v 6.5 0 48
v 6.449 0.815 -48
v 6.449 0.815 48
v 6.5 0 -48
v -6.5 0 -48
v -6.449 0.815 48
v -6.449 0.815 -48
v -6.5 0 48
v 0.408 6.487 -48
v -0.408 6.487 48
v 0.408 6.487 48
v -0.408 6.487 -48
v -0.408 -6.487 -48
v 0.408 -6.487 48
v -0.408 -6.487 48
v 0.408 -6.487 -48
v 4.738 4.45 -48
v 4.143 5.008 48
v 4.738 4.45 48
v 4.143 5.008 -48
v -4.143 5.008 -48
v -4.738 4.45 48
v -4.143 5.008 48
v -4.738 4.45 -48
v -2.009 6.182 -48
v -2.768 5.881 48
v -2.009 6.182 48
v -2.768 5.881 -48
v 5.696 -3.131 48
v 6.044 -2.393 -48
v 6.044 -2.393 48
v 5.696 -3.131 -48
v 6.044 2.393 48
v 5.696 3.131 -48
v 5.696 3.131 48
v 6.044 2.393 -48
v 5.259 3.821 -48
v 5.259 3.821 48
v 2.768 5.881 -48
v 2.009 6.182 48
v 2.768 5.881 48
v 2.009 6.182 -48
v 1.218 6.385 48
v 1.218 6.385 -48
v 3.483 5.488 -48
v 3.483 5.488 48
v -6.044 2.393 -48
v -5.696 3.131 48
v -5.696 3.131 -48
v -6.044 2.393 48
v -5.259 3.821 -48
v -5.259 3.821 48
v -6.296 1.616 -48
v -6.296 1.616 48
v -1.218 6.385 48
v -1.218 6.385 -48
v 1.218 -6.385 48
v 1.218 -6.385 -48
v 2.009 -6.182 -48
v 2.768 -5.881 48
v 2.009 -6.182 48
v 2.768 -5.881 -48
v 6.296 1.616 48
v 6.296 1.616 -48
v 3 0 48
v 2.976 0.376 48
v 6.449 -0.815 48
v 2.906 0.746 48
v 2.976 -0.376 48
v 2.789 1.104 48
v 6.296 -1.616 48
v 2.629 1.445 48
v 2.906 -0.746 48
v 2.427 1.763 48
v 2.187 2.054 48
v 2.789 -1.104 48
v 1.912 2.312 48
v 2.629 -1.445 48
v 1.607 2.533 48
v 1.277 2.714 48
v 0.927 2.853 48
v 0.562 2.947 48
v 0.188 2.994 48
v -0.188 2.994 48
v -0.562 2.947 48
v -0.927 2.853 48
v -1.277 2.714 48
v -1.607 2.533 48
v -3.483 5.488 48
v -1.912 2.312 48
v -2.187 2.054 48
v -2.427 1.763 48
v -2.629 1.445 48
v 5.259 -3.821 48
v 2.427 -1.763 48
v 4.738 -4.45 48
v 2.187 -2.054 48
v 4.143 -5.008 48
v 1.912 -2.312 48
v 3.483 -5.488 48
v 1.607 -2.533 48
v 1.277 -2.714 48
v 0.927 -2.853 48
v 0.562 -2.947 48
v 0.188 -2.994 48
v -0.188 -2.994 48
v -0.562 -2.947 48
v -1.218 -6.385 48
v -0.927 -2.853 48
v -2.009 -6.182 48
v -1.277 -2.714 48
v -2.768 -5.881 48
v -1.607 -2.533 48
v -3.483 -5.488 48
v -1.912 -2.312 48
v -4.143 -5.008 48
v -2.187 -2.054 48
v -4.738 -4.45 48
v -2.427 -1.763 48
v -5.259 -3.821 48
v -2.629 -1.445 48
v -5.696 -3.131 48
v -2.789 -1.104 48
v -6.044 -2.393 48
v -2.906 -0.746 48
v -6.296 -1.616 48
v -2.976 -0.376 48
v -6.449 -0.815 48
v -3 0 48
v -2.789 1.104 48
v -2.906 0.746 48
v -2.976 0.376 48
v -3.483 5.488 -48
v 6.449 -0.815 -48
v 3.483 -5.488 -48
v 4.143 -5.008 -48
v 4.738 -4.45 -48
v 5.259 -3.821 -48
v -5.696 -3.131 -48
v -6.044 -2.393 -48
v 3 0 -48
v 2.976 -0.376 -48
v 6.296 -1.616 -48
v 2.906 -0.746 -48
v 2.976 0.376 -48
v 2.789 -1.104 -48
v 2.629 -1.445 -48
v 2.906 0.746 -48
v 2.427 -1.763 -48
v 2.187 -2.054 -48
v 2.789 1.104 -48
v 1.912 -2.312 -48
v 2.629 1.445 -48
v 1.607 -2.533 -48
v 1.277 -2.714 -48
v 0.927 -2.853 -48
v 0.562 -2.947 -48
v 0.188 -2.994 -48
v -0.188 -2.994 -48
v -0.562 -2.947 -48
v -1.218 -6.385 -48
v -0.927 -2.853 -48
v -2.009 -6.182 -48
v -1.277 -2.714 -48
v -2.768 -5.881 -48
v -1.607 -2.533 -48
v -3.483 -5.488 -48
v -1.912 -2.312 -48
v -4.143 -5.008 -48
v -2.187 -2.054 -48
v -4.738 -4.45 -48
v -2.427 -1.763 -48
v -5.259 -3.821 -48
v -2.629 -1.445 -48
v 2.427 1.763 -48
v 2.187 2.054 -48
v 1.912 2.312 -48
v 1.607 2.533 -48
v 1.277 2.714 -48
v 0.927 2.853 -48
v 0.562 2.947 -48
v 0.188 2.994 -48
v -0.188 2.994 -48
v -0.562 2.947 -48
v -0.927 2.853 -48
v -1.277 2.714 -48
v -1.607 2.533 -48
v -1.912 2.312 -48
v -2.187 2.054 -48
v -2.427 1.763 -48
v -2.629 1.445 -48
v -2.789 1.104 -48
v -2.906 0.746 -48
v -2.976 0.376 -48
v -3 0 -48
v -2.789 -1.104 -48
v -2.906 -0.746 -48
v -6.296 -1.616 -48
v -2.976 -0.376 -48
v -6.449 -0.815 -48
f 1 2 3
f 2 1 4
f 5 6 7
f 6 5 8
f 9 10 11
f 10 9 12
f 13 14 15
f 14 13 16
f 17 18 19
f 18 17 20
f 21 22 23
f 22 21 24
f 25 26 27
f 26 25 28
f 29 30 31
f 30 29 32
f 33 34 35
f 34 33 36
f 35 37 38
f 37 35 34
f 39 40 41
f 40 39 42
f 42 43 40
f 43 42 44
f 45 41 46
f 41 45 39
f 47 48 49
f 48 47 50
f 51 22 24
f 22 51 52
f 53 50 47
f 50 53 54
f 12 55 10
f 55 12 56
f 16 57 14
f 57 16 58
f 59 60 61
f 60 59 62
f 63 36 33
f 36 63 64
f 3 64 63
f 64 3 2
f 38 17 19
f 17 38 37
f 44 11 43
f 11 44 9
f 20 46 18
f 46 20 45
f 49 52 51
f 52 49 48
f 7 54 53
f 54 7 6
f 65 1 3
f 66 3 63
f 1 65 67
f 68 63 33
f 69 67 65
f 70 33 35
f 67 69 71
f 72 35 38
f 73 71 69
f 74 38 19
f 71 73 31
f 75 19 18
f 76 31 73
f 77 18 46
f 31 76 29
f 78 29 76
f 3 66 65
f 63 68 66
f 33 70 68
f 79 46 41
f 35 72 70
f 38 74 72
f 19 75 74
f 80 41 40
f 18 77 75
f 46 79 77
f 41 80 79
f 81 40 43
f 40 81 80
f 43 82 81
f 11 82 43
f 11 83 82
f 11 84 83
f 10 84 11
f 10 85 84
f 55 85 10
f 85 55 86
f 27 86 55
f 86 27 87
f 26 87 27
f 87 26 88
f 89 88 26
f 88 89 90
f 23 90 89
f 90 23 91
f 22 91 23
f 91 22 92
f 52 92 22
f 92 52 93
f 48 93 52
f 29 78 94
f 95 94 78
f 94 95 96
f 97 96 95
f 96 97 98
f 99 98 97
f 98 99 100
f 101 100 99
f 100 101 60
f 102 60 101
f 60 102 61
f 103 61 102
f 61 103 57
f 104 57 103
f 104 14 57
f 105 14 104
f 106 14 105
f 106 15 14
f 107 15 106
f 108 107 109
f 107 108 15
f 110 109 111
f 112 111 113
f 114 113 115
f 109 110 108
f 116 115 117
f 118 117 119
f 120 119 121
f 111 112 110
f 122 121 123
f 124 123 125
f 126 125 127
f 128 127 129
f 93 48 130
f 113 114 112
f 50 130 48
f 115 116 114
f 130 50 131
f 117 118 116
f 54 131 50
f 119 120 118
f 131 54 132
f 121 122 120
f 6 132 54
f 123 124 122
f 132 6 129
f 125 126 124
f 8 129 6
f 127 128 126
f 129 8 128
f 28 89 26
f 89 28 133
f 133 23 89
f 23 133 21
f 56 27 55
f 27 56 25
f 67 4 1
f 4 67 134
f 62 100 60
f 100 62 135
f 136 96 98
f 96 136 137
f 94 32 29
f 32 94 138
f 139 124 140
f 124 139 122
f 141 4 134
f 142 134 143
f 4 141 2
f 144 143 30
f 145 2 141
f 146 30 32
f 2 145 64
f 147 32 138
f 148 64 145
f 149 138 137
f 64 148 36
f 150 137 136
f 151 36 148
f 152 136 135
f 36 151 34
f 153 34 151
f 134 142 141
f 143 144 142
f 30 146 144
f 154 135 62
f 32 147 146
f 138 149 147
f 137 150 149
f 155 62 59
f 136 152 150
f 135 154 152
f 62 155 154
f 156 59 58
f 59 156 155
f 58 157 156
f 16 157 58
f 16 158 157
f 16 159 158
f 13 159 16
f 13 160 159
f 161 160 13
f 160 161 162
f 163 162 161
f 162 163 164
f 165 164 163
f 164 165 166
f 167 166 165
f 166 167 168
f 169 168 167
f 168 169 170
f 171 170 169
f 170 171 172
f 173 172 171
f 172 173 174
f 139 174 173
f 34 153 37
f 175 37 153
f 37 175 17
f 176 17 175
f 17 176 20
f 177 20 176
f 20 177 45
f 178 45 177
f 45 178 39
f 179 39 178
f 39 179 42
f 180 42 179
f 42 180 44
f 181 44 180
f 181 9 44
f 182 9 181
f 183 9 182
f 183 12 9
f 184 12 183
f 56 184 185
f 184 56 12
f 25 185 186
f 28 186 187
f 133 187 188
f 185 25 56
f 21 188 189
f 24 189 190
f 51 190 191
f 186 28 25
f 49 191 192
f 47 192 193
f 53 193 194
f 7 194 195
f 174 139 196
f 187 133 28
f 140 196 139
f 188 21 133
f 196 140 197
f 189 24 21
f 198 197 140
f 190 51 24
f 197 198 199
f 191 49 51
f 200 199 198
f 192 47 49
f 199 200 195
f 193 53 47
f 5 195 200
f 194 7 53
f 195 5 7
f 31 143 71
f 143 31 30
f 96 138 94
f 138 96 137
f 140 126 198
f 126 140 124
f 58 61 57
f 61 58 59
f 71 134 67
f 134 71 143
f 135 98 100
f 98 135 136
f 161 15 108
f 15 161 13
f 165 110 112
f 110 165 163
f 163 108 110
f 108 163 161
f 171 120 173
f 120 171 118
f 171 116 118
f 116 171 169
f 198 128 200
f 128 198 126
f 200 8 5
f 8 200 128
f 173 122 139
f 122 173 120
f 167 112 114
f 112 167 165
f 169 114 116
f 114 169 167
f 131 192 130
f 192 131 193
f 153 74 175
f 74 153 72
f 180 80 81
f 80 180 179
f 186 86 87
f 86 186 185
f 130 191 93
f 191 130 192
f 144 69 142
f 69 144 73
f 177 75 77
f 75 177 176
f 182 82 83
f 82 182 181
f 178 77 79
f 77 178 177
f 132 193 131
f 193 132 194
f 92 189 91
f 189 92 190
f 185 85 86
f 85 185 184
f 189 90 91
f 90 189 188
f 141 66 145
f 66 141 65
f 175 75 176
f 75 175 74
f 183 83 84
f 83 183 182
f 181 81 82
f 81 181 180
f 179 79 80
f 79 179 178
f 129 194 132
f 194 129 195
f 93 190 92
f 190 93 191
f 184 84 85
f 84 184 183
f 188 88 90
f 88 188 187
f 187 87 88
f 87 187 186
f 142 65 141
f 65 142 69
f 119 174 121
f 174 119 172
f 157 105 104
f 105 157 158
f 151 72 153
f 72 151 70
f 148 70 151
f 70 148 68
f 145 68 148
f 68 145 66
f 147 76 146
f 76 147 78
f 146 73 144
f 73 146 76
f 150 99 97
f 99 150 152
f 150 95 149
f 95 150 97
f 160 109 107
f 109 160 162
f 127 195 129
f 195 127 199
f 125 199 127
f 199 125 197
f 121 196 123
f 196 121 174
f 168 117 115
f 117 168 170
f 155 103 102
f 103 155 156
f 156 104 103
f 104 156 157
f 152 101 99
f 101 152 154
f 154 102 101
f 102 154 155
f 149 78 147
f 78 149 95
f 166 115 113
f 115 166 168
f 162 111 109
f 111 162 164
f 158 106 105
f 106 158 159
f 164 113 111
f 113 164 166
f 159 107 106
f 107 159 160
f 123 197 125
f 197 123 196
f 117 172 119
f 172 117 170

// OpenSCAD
$fn = 50;


difference() {
	union() {
		translate(v = [0, 0, -48.0000000000]) {
			cylinder(h = 96, r = 6.5000000000);
		}
	}
	union() {
		translate(v = [0, 0, -100.0000000000]) {
			cylinder(h = 200, r = 3);
		}
	}
}
